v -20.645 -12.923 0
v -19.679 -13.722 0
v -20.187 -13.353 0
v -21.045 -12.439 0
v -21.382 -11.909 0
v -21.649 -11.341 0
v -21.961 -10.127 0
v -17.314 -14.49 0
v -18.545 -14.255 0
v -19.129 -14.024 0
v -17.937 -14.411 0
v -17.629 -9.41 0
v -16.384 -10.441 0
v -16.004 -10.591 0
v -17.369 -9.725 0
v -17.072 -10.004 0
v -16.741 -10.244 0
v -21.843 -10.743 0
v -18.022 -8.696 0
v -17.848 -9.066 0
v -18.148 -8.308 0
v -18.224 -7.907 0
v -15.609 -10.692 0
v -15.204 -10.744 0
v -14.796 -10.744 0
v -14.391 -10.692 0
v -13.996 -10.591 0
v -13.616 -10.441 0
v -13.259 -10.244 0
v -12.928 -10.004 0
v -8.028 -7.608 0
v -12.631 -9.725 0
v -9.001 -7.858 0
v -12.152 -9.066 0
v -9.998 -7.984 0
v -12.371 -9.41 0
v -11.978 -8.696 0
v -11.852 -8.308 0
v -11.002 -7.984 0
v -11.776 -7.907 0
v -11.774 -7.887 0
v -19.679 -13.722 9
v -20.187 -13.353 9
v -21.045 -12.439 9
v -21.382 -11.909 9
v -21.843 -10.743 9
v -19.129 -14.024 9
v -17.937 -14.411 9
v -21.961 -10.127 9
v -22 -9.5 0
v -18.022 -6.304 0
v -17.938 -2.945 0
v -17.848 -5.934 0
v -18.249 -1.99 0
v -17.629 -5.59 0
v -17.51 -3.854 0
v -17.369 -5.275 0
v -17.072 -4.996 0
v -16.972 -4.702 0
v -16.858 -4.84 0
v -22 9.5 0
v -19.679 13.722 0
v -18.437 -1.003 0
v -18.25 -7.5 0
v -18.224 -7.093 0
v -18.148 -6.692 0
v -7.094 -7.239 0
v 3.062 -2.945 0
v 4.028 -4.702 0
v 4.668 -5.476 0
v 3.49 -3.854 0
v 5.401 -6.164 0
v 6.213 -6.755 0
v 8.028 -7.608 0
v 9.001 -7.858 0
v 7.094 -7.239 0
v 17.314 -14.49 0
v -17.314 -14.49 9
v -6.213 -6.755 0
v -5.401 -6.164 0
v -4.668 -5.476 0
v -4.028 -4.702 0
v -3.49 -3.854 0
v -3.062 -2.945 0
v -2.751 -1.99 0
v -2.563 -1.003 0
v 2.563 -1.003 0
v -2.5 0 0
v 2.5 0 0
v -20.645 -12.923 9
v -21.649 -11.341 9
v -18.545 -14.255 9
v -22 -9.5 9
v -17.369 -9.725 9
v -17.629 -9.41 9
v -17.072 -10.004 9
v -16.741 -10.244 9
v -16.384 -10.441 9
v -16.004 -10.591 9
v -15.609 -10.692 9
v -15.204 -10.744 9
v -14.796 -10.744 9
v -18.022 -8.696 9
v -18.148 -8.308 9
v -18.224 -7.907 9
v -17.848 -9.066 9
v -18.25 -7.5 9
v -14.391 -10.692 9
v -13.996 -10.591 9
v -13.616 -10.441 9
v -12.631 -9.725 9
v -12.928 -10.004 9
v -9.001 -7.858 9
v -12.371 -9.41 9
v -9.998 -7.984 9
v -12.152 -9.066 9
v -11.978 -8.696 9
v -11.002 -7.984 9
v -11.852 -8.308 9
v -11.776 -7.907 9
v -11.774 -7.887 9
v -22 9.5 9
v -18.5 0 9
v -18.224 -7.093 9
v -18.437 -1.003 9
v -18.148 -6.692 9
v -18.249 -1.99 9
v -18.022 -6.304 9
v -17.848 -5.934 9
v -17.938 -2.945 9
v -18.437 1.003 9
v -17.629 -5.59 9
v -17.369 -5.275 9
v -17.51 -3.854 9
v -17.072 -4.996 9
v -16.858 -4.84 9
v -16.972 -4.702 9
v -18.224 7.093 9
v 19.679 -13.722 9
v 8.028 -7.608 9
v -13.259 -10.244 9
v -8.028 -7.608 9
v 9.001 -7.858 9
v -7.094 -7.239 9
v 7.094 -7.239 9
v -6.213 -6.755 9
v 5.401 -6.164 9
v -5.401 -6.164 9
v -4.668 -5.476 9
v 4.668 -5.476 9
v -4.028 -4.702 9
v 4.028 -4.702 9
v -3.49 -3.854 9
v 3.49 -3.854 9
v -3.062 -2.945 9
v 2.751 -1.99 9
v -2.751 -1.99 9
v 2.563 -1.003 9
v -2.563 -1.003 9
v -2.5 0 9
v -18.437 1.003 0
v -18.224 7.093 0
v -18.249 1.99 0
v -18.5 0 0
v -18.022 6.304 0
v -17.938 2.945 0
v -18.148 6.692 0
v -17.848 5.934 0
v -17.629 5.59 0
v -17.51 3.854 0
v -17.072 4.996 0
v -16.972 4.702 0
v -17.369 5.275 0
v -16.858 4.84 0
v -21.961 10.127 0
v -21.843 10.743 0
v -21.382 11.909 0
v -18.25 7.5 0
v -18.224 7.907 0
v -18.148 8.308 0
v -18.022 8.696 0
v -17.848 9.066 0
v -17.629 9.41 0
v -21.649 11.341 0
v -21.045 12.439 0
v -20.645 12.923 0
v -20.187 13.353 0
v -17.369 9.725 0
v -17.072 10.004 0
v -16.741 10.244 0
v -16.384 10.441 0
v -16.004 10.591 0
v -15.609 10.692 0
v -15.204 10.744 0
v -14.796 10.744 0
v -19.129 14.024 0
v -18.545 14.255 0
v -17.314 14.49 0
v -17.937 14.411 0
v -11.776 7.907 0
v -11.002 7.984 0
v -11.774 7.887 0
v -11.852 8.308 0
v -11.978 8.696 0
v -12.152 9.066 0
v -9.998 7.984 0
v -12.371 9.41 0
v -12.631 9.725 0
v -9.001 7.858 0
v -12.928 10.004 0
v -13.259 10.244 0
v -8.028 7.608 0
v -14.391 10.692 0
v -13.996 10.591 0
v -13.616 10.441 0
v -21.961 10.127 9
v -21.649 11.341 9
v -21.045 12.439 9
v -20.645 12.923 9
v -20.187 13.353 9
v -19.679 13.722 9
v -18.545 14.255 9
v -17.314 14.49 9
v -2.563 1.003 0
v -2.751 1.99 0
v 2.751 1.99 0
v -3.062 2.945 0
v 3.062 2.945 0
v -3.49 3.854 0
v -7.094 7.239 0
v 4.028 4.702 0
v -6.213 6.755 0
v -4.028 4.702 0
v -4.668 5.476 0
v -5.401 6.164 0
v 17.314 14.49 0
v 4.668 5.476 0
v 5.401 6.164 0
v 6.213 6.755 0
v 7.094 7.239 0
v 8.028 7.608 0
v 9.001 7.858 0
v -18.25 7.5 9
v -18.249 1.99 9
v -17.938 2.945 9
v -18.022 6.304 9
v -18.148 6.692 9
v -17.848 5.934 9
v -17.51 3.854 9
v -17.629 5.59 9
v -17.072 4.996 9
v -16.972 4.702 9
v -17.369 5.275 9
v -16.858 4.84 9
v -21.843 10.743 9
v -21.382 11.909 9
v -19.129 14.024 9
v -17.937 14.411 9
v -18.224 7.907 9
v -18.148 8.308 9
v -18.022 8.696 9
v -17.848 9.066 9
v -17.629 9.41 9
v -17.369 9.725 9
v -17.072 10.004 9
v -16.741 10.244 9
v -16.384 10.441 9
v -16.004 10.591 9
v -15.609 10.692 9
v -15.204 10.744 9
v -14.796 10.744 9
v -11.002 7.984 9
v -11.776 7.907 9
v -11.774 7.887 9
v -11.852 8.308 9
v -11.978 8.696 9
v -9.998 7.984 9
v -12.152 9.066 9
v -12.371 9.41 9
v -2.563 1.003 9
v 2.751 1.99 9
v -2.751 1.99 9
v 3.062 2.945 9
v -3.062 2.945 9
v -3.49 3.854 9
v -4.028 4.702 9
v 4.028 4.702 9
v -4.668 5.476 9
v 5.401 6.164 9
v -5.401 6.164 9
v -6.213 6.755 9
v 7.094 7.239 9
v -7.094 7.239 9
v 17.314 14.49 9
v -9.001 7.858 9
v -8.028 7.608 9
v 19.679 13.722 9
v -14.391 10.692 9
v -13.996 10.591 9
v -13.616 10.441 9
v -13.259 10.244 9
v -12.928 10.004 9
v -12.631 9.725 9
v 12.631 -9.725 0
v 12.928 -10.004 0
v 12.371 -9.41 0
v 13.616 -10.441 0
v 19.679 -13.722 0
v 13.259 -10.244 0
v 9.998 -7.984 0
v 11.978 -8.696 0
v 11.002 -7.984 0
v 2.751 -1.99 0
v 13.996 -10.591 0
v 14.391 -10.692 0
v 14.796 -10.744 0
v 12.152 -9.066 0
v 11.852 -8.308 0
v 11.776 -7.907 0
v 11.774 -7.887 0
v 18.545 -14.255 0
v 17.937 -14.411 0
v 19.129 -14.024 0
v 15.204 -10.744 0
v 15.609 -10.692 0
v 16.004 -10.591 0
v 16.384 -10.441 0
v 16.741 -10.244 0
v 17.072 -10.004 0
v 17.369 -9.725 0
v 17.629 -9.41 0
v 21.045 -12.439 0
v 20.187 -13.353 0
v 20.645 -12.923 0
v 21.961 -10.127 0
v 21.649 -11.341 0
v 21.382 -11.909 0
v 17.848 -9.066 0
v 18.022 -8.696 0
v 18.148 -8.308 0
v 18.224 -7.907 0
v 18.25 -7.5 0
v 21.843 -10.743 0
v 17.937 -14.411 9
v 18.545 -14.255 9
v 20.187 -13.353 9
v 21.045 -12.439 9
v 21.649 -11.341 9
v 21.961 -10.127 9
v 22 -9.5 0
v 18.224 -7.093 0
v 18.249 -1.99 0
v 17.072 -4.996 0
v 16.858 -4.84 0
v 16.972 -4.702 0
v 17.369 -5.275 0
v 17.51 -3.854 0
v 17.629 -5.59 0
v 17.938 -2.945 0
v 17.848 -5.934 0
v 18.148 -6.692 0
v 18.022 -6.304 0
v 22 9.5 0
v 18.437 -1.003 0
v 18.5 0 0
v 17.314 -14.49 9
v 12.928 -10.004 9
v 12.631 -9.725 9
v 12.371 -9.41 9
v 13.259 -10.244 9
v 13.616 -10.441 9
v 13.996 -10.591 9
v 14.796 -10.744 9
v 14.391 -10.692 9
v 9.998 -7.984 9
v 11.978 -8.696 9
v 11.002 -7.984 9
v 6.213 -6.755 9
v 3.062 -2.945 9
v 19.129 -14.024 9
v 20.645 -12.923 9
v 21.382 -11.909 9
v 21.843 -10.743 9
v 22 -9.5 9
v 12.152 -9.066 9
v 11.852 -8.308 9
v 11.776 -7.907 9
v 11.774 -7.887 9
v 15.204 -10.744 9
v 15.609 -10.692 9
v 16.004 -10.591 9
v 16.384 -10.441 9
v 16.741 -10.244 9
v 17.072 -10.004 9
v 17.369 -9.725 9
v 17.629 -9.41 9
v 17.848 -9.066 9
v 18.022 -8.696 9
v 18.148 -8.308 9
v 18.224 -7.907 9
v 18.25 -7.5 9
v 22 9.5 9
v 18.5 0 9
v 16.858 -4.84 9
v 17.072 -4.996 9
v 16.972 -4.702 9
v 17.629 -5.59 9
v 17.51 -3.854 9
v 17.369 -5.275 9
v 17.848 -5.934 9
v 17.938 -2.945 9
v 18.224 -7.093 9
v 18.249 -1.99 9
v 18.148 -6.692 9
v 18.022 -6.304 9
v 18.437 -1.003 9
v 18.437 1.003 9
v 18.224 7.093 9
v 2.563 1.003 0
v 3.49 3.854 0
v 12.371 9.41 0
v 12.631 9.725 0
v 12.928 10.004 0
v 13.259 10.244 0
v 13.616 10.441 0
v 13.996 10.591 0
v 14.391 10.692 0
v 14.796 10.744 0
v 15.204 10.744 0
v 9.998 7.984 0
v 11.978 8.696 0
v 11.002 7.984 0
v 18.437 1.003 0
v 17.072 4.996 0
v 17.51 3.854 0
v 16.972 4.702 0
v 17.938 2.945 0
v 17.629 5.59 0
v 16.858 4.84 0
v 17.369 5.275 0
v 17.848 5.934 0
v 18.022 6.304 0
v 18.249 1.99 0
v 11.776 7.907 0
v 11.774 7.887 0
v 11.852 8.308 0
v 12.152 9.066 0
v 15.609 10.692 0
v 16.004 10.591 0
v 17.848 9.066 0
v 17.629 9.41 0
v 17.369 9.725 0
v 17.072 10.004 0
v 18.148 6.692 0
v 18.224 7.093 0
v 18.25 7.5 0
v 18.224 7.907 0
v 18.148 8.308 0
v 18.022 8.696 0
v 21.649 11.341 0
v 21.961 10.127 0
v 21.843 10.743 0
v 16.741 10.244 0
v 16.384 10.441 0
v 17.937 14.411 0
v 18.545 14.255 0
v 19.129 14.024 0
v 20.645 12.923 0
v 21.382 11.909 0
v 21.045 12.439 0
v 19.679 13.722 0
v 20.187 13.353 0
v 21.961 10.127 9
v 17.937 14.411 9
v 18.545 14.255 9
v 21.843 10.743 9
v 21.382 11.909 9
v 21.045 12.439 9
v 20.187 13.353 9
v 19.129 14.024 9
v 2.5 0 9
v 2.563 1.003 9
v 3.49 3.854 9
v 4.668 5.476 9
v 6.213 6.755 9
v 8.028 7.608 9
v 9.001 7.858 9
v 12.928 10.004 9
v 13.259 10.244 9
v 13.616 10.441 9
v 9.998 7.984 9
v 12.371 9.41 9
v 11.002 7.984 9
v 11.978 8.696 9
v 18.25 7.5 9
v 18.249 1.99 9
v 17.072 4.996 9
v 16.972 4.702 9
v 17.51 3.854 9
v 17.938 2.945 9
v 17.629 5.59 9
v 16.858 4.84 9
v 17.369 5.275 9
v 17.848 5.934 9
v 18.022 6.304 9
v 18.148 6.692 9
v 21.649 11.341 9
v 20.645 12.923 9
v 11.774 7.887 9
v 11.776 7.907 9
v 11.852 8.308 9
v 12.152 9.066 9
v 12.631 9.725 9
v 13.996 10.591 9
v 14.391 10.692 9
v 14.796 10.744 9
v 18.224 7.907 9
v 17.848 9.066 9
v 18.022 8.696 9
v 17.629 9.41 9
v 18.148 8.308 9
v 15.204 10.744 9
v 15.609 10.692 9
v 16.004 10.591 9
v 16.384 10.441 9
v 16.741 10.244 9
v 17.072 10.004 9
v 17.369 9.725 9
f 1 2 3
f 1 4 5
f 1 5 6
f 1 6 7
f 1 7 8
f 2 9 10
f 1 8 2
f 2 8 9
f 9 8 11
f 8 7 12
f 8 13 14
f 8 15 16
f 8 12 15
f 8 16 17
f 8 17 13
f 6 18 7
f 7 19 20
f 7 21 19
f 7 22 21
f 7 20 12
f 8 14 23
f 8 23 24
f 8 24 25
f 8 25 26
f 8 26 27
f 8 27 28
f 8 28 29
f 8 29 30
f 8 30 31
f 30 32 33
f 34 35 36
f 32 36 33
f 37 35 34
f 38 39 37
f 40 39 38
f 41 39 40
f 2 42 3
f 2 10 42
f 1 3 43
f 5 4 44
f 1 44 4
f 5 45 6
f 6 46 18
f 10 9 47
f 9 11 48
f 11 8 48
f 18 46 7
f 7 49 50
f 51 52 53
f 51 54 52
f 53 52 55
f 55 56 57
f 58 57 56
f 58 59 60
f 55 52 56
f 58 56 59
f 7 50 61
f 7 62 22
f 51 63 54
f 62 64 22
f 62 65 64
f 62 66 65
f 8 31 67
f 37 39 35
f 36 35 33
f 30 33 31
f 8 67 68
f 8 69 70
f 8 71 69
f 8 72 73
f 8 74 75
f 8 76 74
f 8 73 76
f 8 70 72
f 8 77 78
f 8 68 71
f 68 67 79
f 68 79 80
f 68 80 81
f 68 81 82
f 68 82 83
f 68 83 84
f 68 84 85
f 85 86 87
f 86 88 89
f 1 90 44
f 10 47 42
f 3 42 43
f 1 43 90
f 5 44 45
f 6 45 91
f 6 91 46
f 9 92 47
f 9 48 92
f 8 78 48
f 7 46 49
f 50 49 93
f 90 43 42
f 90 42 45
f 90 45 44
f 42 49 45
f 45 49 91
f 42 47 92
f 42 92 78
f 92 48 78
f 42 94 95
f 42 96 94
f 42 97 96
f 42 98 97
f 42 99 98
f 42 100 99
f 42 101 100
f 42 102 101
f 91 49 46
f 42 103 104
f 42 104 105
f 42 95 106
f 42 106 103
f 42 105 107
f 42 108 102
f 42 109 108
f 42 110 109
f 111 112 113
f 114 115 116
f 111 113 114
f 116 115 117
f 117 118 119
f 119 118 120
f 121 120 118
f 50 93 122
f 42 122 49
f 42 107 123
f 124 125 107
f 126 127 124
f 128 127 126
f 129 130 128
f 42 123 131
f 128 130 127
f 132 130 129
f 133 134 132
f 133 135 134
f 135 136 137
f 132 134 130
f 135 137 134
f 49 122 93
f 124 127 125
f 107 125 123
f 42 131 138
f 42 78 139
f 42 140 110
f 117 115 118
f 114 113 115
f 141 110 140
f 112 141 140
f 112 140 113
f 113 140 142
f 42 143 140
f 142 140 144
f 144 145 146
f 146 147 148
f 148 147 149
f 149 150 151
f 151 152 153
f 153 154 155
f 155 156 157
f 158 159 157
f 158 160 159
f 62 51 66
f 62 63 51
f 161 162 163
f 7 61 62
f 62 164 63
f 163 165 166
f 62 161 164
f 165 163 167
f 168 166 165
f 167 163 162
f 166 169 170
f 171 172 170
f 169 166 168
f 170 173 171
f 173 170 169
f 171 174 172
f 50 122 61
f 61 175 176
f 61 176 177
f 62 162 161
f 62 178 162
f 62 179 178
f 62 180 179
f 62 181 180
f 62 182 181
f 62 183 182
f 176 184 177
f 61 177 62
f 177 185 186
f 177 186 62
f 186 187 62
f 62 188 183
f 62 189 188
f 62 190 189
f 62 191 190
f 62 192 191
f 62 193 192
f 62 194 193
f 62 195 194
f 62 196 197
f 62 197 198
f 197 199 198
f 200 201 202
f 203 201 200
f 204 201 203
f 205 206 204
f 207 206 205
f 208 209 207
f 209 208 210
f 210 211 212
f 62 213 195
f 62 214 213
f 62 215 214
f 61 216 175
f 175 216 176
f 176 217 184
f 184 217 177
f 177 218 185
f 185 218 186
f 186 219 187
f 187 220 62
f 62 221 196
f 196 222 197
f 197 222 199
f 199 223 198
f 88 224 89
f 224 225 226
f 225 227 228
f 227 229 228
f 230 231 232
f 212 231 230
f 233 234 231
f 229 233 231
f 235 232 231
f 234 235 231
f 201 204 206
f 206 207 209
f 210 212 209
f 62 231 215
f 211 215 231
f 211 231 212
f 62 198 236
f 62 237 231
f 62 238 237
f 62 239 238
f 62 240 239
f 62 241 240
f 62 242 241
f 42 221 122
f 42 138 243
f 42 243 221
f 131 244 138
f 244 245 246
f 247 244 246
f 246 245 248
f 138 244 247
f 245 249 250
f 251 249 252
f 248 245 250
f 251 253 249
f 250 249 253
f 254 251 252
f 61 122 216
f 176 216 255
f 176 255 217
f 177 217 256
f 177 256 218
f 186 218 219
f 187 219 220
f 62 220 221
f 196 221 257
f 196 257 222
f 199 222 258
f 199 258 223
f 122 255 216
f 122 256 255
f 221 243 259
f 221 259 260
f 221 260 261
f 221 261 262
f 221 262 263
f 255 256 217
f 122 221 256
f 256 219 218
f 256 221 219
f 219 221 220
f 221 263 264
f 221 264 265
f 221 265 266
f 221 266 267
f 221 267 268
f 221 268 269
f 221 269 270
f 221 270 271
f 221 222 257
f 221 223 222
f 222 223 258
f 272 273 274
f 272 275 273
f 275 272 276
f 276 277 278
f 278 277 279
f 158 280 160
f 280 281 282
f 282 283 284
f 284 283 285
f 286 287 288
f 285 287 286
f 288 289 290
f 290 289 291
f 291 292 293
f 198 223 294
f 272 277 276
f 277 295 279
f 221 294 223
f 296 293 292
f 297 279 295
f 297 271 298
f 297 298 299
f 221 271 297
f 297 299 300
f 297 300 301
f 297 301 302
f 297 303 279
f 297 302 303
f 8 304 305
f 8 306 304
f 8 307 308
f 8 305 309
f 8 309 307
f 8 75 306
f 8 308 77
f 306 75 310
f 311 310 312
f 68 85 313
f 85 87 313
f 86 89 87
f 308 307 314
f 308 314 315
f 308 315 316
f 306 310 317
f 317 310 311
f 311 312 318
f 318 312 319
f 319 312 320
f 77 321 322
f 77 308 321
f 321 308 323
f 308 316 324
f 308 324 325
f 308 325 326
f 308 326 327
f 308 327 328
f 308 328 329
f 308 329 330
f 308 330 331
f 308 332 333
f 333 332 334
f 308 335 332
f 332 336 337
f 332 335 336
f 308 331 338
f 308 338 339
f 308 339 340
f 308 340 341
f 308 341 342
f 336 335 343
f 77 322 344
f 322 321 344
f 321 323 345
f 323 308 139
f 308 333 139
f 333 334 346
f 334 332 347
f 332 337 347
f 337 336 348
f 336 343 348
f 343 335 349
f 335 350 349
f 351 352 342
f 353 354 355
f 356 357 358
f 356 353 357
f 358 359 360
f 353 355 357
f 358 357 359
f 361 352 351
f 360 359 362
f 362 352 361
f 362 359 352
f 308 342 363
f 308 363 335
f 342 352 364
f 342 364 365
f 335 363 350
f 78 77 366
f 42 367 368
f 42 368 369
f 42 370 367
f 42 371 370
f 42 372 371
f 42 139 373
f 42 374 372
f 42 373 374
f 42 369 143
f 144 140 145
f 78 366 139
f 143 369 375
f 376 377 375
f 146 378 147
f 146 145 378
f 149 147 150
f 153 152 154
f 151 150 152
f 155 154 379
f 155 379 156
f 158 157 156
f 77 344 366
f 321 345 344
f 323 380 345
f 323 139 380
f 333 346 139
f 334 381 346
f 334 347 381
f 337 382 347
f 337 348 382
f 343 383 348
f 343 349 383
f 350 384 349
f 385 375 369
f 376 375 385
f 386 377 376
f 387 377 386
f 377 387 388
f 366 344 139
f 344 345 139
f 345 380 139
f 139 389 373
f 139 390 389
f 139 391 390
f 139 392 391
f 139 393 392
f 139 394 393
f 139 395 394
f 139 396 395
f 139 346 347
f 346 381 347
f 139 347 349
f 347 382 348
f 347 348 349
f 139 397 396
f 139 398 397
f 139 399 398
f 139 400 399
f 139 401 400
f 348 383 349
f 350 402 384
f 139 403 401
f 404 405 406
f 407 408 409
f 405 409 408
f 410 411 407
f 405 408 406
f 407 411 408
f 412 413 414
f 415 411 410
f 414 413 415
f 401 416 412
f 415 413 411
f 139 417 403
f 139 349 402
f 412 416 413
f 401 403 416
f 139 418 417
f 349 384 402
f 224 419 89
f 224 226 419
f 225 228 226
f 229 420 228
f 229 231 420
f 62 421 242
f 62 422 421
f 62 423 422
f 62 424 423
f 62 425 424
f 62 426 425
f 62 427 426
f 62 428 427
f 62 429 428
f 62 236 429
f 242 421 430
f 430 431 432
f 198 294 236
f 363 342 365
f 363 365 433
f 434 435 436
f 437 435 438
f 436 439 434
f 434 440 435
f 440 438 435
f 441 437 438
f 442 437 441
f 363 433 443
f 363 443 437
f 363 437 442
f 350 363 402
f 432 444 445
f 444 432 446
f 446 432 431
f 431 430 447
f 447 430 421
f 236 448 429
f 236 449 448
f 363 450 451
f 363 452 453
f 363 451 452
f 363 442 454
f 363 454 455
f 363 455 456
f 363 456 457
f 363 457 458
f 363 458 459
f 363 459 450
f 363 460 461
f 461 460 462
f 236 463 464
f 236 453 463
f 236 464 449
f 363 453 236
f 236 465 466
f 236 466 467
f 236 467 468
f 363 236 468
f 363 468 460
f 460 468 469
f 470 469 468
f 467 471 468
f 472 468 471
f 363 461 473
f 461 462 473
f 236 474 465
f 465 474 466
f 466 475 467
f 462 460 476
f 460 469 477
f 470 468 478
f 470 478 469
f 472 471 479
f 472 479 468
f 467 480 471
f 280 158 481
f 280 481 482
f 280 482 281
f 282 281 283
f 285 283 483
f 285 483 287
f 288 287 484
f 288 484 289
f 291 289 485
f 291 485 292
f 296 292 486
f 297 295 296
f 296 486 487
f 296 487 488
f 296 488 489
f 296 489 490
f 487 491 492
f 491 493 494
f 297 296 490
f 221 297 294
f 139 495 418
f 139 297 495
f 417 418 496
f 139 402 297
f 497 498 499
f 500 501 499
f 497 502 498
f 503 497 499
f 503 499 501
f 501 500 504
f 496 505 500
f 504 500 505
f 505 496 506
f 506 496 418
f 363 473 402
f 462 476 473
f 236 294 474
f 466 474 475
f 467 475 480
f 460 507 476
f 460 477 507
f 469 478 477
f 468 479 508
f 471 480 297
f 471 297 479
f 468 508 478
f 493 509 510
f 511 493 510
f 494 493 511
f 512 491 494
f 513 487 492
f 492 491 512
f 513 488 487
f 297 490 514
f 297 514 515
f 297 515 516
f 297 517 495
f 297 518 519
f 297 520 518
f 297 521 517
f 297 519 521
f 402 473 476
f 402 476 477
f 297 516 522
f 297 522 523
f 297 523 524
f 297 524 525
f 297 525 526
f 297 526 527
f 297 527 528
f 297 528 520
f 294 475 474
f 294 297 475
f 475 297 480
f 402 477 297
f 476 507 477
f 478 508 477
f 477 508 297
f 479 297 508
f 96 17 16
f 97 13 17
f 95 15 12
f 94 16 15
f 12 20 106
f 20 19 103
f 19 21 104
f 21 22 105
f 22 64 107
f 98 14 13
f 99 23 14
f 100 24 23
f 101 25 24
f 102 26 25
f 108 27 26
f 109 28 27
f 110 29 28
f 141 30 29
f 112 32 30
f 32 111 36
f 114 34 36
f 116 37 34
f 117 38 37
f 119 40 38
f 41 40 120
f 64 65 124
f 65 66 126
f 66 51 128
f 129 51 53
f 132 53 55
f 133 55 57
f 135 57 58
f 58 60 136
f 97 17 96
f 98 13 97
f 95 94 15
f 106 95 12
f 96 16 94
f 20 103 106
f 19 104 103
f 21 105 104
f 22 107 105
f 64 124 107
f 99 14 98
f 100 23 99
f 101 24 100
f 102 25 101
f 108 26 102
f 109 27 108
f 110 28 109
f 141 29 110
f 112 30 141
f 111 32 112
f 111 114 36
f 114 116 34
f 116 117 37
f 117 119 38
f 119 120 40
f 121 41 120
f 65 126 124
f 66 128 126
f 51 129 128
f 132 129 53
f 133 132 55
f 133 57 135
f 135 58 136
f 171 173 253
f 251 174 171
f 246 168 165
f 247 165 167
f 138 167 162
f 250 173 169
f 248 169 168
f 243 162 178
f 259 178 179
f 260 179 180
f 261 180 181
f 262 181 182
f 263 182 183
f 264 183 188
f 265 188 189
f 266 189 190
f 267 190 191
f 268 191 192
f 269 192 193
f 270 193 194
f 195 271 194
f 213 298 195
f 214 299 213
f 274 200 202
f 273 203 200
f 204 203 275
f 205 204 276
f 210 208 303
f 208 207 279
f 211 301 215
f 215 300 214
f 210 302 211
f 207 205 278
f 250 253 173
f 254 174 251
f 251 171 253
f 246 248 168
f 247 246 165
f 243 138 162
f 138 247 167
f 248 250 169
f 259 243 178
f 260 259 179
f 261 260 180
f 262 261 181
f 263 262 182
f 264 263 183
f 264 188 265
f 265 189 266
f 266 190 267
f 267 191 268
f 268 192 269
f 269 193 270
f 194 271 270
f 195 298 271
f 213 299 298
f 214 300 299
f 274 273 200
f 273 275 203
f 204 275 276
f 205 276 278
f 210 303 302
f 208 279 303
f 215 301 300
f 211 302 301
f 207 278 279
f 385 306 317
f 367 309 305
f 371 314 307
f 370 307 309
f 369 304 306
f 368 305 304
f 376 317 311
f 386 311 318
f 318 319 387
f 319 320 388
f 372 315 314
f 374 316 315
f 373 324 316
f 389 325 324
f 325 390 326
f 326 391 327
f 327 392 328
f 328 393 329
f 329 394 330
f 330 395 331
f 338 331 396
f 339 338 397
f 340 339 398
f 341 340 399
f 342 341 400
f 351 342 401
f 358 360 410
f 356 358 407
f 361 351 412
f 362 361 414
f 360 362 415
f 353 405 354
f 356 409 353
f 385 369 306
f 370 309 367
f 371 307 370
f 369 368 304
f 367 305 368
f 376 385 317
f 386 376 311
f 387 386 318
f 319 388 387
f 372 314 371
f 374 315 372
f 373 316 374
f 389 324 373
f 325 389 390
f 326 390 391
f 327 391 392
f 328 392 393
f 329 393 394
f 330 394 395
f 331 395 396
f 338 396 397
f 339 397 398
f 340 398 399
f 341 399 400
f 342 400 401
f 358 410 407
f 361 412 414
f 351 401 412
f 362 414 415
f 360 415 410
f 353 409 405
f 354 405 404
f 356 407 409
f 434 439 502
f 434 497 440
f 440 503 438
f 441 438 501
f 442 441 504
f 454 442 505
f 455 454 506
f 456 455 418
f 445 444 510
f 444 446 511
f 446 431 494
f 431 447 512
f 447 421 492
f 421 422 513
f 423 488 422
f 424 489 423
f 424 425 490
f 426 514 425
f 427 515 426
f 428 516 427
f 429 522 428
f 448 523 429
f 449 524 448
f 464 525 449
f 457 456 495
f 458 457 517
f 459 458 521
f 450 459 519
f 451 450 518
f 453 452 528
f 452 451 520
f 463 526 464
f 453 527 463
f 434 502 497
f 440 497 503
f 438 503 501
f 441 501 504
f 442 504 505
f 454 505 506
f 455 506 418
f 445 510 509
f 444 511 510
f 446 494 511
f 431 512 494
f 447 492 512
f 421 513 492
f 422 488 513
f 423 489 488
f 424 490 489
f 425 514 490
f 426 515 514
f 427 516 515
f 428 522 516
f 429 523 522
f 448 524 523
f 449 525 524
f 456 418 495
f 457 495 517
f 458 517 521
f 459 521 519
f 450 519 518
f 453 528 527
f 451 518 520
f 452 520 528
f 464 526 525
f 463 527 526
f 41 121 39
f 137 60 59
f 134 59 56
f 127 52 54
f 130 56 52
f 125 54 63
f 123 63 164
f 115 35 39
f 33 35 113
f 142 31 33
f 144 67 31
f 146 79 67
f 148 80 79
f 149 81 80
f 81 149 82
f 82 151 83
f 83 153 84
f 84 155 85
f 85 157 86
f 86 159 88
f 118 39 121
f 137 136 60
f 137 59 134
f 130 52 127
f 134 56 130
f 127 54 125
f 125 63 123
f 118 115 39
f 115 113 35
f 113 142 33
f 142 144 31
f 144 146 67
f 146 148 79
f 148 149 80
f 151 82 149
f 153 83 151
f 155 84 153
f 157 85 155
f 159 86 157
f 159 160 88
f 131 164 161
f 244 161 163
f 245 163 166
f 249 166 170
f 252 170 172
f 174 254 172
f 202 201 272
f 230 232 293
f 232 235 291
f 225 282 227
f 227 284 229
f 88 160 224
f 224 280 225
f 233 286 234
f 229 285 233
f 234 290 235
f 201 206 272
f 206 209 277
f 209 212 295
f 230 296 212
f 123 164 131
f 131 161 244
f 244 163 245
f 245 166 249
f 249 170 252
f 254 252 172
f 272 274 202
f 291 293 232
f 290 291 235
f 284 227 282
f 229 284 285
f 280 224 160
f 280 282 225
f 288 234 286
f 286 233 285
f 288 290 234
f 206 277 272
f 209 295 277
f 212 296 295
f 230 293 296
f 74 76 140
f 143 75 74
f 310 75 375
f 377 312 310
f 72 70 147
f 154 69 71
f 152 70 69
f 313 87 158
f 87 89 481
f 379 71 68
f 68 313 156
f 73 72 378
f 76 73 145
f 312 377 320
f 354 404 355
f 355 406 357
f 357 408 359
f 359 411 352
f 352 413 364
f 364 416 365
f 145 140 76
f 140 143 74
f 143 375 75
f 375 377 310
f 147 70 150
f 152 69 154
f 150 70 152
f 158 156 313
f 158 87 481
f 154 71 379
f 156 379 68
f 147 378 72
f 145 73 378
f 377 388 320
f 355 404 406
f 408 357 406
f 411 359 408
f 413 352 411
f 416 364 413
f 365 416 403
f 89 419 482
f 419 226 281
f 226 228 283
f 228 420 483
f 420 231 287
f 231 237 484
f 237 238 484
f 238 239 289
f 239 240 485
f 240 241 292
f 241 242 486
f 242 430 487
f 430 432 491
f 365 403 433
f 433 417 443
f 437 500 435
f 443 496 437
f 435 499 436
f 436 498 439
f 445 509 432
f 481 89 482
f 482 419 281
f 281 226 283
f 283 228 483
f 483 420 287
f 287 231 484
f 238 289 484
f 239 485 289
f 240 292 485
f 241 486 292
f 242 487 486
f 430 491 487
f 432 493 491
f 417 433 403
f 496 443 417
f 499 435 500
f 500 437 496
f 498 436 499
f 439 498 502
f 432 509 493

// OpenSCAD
$fn = 50;

difference() {
	union() {
		hull() {
			translate(v = [-17.0, 9.5, 0]) {
				cylinder(h = 9, r = 5);
			}
			translate(v = [17.0, 9.5, 0]) {
				cylinder(h = 9, r = 5);
			}
			translate(v = [-17.0, -9.5, 0]) {
				cylinder(h = 9, r = 5);
			}
			translate(v = [17.0, -9.5, 0]) {
				cylinder(h = 9, r = 5);
			}
		}
	}
	union() {
		translate(v = [-15.0, -7.5, -100.0]) {
			cylinder(h = 200, r = 3.25);
		}
		translate(v = [-15.0, 7.5, -100.0]) {
			cylinder(h = 200, r = 3.25);
		}
		translate(v = [15.0, -7.5, -100.0]) {
			cylinder(h = 200, r = 3.25);
		}
		translate(v = [15.0, 7.5, -100.0]) {
			cylinder(h = 200, r = 3.25);
		}
		translate(v = [-15.0, -7.5, -100.0]) {
			cylinder(h = 200, r = 1.8);
		}
		translate(v = [-15.0, 7.5, -100.0]) {
			cylinder(h = 200, r = 1.8);
		}
		translate(v = [15.0, -7.5, -100.0]) {
			cylinder(h = 200, r = 1.8);
		}
		translate(v = [15.0, 7.5, -100.0]) {
			cylinder(h = 200, r = 1.8);
		}
		translate(v = [-10.5, 0, 0.0]) {
			cylinder(h = 9, r = 8.0);
		}
		translate(v = [10.5, 0, 0.0]) {
			cylinder(h = 9, r = 8.0);
		}
	}
}
